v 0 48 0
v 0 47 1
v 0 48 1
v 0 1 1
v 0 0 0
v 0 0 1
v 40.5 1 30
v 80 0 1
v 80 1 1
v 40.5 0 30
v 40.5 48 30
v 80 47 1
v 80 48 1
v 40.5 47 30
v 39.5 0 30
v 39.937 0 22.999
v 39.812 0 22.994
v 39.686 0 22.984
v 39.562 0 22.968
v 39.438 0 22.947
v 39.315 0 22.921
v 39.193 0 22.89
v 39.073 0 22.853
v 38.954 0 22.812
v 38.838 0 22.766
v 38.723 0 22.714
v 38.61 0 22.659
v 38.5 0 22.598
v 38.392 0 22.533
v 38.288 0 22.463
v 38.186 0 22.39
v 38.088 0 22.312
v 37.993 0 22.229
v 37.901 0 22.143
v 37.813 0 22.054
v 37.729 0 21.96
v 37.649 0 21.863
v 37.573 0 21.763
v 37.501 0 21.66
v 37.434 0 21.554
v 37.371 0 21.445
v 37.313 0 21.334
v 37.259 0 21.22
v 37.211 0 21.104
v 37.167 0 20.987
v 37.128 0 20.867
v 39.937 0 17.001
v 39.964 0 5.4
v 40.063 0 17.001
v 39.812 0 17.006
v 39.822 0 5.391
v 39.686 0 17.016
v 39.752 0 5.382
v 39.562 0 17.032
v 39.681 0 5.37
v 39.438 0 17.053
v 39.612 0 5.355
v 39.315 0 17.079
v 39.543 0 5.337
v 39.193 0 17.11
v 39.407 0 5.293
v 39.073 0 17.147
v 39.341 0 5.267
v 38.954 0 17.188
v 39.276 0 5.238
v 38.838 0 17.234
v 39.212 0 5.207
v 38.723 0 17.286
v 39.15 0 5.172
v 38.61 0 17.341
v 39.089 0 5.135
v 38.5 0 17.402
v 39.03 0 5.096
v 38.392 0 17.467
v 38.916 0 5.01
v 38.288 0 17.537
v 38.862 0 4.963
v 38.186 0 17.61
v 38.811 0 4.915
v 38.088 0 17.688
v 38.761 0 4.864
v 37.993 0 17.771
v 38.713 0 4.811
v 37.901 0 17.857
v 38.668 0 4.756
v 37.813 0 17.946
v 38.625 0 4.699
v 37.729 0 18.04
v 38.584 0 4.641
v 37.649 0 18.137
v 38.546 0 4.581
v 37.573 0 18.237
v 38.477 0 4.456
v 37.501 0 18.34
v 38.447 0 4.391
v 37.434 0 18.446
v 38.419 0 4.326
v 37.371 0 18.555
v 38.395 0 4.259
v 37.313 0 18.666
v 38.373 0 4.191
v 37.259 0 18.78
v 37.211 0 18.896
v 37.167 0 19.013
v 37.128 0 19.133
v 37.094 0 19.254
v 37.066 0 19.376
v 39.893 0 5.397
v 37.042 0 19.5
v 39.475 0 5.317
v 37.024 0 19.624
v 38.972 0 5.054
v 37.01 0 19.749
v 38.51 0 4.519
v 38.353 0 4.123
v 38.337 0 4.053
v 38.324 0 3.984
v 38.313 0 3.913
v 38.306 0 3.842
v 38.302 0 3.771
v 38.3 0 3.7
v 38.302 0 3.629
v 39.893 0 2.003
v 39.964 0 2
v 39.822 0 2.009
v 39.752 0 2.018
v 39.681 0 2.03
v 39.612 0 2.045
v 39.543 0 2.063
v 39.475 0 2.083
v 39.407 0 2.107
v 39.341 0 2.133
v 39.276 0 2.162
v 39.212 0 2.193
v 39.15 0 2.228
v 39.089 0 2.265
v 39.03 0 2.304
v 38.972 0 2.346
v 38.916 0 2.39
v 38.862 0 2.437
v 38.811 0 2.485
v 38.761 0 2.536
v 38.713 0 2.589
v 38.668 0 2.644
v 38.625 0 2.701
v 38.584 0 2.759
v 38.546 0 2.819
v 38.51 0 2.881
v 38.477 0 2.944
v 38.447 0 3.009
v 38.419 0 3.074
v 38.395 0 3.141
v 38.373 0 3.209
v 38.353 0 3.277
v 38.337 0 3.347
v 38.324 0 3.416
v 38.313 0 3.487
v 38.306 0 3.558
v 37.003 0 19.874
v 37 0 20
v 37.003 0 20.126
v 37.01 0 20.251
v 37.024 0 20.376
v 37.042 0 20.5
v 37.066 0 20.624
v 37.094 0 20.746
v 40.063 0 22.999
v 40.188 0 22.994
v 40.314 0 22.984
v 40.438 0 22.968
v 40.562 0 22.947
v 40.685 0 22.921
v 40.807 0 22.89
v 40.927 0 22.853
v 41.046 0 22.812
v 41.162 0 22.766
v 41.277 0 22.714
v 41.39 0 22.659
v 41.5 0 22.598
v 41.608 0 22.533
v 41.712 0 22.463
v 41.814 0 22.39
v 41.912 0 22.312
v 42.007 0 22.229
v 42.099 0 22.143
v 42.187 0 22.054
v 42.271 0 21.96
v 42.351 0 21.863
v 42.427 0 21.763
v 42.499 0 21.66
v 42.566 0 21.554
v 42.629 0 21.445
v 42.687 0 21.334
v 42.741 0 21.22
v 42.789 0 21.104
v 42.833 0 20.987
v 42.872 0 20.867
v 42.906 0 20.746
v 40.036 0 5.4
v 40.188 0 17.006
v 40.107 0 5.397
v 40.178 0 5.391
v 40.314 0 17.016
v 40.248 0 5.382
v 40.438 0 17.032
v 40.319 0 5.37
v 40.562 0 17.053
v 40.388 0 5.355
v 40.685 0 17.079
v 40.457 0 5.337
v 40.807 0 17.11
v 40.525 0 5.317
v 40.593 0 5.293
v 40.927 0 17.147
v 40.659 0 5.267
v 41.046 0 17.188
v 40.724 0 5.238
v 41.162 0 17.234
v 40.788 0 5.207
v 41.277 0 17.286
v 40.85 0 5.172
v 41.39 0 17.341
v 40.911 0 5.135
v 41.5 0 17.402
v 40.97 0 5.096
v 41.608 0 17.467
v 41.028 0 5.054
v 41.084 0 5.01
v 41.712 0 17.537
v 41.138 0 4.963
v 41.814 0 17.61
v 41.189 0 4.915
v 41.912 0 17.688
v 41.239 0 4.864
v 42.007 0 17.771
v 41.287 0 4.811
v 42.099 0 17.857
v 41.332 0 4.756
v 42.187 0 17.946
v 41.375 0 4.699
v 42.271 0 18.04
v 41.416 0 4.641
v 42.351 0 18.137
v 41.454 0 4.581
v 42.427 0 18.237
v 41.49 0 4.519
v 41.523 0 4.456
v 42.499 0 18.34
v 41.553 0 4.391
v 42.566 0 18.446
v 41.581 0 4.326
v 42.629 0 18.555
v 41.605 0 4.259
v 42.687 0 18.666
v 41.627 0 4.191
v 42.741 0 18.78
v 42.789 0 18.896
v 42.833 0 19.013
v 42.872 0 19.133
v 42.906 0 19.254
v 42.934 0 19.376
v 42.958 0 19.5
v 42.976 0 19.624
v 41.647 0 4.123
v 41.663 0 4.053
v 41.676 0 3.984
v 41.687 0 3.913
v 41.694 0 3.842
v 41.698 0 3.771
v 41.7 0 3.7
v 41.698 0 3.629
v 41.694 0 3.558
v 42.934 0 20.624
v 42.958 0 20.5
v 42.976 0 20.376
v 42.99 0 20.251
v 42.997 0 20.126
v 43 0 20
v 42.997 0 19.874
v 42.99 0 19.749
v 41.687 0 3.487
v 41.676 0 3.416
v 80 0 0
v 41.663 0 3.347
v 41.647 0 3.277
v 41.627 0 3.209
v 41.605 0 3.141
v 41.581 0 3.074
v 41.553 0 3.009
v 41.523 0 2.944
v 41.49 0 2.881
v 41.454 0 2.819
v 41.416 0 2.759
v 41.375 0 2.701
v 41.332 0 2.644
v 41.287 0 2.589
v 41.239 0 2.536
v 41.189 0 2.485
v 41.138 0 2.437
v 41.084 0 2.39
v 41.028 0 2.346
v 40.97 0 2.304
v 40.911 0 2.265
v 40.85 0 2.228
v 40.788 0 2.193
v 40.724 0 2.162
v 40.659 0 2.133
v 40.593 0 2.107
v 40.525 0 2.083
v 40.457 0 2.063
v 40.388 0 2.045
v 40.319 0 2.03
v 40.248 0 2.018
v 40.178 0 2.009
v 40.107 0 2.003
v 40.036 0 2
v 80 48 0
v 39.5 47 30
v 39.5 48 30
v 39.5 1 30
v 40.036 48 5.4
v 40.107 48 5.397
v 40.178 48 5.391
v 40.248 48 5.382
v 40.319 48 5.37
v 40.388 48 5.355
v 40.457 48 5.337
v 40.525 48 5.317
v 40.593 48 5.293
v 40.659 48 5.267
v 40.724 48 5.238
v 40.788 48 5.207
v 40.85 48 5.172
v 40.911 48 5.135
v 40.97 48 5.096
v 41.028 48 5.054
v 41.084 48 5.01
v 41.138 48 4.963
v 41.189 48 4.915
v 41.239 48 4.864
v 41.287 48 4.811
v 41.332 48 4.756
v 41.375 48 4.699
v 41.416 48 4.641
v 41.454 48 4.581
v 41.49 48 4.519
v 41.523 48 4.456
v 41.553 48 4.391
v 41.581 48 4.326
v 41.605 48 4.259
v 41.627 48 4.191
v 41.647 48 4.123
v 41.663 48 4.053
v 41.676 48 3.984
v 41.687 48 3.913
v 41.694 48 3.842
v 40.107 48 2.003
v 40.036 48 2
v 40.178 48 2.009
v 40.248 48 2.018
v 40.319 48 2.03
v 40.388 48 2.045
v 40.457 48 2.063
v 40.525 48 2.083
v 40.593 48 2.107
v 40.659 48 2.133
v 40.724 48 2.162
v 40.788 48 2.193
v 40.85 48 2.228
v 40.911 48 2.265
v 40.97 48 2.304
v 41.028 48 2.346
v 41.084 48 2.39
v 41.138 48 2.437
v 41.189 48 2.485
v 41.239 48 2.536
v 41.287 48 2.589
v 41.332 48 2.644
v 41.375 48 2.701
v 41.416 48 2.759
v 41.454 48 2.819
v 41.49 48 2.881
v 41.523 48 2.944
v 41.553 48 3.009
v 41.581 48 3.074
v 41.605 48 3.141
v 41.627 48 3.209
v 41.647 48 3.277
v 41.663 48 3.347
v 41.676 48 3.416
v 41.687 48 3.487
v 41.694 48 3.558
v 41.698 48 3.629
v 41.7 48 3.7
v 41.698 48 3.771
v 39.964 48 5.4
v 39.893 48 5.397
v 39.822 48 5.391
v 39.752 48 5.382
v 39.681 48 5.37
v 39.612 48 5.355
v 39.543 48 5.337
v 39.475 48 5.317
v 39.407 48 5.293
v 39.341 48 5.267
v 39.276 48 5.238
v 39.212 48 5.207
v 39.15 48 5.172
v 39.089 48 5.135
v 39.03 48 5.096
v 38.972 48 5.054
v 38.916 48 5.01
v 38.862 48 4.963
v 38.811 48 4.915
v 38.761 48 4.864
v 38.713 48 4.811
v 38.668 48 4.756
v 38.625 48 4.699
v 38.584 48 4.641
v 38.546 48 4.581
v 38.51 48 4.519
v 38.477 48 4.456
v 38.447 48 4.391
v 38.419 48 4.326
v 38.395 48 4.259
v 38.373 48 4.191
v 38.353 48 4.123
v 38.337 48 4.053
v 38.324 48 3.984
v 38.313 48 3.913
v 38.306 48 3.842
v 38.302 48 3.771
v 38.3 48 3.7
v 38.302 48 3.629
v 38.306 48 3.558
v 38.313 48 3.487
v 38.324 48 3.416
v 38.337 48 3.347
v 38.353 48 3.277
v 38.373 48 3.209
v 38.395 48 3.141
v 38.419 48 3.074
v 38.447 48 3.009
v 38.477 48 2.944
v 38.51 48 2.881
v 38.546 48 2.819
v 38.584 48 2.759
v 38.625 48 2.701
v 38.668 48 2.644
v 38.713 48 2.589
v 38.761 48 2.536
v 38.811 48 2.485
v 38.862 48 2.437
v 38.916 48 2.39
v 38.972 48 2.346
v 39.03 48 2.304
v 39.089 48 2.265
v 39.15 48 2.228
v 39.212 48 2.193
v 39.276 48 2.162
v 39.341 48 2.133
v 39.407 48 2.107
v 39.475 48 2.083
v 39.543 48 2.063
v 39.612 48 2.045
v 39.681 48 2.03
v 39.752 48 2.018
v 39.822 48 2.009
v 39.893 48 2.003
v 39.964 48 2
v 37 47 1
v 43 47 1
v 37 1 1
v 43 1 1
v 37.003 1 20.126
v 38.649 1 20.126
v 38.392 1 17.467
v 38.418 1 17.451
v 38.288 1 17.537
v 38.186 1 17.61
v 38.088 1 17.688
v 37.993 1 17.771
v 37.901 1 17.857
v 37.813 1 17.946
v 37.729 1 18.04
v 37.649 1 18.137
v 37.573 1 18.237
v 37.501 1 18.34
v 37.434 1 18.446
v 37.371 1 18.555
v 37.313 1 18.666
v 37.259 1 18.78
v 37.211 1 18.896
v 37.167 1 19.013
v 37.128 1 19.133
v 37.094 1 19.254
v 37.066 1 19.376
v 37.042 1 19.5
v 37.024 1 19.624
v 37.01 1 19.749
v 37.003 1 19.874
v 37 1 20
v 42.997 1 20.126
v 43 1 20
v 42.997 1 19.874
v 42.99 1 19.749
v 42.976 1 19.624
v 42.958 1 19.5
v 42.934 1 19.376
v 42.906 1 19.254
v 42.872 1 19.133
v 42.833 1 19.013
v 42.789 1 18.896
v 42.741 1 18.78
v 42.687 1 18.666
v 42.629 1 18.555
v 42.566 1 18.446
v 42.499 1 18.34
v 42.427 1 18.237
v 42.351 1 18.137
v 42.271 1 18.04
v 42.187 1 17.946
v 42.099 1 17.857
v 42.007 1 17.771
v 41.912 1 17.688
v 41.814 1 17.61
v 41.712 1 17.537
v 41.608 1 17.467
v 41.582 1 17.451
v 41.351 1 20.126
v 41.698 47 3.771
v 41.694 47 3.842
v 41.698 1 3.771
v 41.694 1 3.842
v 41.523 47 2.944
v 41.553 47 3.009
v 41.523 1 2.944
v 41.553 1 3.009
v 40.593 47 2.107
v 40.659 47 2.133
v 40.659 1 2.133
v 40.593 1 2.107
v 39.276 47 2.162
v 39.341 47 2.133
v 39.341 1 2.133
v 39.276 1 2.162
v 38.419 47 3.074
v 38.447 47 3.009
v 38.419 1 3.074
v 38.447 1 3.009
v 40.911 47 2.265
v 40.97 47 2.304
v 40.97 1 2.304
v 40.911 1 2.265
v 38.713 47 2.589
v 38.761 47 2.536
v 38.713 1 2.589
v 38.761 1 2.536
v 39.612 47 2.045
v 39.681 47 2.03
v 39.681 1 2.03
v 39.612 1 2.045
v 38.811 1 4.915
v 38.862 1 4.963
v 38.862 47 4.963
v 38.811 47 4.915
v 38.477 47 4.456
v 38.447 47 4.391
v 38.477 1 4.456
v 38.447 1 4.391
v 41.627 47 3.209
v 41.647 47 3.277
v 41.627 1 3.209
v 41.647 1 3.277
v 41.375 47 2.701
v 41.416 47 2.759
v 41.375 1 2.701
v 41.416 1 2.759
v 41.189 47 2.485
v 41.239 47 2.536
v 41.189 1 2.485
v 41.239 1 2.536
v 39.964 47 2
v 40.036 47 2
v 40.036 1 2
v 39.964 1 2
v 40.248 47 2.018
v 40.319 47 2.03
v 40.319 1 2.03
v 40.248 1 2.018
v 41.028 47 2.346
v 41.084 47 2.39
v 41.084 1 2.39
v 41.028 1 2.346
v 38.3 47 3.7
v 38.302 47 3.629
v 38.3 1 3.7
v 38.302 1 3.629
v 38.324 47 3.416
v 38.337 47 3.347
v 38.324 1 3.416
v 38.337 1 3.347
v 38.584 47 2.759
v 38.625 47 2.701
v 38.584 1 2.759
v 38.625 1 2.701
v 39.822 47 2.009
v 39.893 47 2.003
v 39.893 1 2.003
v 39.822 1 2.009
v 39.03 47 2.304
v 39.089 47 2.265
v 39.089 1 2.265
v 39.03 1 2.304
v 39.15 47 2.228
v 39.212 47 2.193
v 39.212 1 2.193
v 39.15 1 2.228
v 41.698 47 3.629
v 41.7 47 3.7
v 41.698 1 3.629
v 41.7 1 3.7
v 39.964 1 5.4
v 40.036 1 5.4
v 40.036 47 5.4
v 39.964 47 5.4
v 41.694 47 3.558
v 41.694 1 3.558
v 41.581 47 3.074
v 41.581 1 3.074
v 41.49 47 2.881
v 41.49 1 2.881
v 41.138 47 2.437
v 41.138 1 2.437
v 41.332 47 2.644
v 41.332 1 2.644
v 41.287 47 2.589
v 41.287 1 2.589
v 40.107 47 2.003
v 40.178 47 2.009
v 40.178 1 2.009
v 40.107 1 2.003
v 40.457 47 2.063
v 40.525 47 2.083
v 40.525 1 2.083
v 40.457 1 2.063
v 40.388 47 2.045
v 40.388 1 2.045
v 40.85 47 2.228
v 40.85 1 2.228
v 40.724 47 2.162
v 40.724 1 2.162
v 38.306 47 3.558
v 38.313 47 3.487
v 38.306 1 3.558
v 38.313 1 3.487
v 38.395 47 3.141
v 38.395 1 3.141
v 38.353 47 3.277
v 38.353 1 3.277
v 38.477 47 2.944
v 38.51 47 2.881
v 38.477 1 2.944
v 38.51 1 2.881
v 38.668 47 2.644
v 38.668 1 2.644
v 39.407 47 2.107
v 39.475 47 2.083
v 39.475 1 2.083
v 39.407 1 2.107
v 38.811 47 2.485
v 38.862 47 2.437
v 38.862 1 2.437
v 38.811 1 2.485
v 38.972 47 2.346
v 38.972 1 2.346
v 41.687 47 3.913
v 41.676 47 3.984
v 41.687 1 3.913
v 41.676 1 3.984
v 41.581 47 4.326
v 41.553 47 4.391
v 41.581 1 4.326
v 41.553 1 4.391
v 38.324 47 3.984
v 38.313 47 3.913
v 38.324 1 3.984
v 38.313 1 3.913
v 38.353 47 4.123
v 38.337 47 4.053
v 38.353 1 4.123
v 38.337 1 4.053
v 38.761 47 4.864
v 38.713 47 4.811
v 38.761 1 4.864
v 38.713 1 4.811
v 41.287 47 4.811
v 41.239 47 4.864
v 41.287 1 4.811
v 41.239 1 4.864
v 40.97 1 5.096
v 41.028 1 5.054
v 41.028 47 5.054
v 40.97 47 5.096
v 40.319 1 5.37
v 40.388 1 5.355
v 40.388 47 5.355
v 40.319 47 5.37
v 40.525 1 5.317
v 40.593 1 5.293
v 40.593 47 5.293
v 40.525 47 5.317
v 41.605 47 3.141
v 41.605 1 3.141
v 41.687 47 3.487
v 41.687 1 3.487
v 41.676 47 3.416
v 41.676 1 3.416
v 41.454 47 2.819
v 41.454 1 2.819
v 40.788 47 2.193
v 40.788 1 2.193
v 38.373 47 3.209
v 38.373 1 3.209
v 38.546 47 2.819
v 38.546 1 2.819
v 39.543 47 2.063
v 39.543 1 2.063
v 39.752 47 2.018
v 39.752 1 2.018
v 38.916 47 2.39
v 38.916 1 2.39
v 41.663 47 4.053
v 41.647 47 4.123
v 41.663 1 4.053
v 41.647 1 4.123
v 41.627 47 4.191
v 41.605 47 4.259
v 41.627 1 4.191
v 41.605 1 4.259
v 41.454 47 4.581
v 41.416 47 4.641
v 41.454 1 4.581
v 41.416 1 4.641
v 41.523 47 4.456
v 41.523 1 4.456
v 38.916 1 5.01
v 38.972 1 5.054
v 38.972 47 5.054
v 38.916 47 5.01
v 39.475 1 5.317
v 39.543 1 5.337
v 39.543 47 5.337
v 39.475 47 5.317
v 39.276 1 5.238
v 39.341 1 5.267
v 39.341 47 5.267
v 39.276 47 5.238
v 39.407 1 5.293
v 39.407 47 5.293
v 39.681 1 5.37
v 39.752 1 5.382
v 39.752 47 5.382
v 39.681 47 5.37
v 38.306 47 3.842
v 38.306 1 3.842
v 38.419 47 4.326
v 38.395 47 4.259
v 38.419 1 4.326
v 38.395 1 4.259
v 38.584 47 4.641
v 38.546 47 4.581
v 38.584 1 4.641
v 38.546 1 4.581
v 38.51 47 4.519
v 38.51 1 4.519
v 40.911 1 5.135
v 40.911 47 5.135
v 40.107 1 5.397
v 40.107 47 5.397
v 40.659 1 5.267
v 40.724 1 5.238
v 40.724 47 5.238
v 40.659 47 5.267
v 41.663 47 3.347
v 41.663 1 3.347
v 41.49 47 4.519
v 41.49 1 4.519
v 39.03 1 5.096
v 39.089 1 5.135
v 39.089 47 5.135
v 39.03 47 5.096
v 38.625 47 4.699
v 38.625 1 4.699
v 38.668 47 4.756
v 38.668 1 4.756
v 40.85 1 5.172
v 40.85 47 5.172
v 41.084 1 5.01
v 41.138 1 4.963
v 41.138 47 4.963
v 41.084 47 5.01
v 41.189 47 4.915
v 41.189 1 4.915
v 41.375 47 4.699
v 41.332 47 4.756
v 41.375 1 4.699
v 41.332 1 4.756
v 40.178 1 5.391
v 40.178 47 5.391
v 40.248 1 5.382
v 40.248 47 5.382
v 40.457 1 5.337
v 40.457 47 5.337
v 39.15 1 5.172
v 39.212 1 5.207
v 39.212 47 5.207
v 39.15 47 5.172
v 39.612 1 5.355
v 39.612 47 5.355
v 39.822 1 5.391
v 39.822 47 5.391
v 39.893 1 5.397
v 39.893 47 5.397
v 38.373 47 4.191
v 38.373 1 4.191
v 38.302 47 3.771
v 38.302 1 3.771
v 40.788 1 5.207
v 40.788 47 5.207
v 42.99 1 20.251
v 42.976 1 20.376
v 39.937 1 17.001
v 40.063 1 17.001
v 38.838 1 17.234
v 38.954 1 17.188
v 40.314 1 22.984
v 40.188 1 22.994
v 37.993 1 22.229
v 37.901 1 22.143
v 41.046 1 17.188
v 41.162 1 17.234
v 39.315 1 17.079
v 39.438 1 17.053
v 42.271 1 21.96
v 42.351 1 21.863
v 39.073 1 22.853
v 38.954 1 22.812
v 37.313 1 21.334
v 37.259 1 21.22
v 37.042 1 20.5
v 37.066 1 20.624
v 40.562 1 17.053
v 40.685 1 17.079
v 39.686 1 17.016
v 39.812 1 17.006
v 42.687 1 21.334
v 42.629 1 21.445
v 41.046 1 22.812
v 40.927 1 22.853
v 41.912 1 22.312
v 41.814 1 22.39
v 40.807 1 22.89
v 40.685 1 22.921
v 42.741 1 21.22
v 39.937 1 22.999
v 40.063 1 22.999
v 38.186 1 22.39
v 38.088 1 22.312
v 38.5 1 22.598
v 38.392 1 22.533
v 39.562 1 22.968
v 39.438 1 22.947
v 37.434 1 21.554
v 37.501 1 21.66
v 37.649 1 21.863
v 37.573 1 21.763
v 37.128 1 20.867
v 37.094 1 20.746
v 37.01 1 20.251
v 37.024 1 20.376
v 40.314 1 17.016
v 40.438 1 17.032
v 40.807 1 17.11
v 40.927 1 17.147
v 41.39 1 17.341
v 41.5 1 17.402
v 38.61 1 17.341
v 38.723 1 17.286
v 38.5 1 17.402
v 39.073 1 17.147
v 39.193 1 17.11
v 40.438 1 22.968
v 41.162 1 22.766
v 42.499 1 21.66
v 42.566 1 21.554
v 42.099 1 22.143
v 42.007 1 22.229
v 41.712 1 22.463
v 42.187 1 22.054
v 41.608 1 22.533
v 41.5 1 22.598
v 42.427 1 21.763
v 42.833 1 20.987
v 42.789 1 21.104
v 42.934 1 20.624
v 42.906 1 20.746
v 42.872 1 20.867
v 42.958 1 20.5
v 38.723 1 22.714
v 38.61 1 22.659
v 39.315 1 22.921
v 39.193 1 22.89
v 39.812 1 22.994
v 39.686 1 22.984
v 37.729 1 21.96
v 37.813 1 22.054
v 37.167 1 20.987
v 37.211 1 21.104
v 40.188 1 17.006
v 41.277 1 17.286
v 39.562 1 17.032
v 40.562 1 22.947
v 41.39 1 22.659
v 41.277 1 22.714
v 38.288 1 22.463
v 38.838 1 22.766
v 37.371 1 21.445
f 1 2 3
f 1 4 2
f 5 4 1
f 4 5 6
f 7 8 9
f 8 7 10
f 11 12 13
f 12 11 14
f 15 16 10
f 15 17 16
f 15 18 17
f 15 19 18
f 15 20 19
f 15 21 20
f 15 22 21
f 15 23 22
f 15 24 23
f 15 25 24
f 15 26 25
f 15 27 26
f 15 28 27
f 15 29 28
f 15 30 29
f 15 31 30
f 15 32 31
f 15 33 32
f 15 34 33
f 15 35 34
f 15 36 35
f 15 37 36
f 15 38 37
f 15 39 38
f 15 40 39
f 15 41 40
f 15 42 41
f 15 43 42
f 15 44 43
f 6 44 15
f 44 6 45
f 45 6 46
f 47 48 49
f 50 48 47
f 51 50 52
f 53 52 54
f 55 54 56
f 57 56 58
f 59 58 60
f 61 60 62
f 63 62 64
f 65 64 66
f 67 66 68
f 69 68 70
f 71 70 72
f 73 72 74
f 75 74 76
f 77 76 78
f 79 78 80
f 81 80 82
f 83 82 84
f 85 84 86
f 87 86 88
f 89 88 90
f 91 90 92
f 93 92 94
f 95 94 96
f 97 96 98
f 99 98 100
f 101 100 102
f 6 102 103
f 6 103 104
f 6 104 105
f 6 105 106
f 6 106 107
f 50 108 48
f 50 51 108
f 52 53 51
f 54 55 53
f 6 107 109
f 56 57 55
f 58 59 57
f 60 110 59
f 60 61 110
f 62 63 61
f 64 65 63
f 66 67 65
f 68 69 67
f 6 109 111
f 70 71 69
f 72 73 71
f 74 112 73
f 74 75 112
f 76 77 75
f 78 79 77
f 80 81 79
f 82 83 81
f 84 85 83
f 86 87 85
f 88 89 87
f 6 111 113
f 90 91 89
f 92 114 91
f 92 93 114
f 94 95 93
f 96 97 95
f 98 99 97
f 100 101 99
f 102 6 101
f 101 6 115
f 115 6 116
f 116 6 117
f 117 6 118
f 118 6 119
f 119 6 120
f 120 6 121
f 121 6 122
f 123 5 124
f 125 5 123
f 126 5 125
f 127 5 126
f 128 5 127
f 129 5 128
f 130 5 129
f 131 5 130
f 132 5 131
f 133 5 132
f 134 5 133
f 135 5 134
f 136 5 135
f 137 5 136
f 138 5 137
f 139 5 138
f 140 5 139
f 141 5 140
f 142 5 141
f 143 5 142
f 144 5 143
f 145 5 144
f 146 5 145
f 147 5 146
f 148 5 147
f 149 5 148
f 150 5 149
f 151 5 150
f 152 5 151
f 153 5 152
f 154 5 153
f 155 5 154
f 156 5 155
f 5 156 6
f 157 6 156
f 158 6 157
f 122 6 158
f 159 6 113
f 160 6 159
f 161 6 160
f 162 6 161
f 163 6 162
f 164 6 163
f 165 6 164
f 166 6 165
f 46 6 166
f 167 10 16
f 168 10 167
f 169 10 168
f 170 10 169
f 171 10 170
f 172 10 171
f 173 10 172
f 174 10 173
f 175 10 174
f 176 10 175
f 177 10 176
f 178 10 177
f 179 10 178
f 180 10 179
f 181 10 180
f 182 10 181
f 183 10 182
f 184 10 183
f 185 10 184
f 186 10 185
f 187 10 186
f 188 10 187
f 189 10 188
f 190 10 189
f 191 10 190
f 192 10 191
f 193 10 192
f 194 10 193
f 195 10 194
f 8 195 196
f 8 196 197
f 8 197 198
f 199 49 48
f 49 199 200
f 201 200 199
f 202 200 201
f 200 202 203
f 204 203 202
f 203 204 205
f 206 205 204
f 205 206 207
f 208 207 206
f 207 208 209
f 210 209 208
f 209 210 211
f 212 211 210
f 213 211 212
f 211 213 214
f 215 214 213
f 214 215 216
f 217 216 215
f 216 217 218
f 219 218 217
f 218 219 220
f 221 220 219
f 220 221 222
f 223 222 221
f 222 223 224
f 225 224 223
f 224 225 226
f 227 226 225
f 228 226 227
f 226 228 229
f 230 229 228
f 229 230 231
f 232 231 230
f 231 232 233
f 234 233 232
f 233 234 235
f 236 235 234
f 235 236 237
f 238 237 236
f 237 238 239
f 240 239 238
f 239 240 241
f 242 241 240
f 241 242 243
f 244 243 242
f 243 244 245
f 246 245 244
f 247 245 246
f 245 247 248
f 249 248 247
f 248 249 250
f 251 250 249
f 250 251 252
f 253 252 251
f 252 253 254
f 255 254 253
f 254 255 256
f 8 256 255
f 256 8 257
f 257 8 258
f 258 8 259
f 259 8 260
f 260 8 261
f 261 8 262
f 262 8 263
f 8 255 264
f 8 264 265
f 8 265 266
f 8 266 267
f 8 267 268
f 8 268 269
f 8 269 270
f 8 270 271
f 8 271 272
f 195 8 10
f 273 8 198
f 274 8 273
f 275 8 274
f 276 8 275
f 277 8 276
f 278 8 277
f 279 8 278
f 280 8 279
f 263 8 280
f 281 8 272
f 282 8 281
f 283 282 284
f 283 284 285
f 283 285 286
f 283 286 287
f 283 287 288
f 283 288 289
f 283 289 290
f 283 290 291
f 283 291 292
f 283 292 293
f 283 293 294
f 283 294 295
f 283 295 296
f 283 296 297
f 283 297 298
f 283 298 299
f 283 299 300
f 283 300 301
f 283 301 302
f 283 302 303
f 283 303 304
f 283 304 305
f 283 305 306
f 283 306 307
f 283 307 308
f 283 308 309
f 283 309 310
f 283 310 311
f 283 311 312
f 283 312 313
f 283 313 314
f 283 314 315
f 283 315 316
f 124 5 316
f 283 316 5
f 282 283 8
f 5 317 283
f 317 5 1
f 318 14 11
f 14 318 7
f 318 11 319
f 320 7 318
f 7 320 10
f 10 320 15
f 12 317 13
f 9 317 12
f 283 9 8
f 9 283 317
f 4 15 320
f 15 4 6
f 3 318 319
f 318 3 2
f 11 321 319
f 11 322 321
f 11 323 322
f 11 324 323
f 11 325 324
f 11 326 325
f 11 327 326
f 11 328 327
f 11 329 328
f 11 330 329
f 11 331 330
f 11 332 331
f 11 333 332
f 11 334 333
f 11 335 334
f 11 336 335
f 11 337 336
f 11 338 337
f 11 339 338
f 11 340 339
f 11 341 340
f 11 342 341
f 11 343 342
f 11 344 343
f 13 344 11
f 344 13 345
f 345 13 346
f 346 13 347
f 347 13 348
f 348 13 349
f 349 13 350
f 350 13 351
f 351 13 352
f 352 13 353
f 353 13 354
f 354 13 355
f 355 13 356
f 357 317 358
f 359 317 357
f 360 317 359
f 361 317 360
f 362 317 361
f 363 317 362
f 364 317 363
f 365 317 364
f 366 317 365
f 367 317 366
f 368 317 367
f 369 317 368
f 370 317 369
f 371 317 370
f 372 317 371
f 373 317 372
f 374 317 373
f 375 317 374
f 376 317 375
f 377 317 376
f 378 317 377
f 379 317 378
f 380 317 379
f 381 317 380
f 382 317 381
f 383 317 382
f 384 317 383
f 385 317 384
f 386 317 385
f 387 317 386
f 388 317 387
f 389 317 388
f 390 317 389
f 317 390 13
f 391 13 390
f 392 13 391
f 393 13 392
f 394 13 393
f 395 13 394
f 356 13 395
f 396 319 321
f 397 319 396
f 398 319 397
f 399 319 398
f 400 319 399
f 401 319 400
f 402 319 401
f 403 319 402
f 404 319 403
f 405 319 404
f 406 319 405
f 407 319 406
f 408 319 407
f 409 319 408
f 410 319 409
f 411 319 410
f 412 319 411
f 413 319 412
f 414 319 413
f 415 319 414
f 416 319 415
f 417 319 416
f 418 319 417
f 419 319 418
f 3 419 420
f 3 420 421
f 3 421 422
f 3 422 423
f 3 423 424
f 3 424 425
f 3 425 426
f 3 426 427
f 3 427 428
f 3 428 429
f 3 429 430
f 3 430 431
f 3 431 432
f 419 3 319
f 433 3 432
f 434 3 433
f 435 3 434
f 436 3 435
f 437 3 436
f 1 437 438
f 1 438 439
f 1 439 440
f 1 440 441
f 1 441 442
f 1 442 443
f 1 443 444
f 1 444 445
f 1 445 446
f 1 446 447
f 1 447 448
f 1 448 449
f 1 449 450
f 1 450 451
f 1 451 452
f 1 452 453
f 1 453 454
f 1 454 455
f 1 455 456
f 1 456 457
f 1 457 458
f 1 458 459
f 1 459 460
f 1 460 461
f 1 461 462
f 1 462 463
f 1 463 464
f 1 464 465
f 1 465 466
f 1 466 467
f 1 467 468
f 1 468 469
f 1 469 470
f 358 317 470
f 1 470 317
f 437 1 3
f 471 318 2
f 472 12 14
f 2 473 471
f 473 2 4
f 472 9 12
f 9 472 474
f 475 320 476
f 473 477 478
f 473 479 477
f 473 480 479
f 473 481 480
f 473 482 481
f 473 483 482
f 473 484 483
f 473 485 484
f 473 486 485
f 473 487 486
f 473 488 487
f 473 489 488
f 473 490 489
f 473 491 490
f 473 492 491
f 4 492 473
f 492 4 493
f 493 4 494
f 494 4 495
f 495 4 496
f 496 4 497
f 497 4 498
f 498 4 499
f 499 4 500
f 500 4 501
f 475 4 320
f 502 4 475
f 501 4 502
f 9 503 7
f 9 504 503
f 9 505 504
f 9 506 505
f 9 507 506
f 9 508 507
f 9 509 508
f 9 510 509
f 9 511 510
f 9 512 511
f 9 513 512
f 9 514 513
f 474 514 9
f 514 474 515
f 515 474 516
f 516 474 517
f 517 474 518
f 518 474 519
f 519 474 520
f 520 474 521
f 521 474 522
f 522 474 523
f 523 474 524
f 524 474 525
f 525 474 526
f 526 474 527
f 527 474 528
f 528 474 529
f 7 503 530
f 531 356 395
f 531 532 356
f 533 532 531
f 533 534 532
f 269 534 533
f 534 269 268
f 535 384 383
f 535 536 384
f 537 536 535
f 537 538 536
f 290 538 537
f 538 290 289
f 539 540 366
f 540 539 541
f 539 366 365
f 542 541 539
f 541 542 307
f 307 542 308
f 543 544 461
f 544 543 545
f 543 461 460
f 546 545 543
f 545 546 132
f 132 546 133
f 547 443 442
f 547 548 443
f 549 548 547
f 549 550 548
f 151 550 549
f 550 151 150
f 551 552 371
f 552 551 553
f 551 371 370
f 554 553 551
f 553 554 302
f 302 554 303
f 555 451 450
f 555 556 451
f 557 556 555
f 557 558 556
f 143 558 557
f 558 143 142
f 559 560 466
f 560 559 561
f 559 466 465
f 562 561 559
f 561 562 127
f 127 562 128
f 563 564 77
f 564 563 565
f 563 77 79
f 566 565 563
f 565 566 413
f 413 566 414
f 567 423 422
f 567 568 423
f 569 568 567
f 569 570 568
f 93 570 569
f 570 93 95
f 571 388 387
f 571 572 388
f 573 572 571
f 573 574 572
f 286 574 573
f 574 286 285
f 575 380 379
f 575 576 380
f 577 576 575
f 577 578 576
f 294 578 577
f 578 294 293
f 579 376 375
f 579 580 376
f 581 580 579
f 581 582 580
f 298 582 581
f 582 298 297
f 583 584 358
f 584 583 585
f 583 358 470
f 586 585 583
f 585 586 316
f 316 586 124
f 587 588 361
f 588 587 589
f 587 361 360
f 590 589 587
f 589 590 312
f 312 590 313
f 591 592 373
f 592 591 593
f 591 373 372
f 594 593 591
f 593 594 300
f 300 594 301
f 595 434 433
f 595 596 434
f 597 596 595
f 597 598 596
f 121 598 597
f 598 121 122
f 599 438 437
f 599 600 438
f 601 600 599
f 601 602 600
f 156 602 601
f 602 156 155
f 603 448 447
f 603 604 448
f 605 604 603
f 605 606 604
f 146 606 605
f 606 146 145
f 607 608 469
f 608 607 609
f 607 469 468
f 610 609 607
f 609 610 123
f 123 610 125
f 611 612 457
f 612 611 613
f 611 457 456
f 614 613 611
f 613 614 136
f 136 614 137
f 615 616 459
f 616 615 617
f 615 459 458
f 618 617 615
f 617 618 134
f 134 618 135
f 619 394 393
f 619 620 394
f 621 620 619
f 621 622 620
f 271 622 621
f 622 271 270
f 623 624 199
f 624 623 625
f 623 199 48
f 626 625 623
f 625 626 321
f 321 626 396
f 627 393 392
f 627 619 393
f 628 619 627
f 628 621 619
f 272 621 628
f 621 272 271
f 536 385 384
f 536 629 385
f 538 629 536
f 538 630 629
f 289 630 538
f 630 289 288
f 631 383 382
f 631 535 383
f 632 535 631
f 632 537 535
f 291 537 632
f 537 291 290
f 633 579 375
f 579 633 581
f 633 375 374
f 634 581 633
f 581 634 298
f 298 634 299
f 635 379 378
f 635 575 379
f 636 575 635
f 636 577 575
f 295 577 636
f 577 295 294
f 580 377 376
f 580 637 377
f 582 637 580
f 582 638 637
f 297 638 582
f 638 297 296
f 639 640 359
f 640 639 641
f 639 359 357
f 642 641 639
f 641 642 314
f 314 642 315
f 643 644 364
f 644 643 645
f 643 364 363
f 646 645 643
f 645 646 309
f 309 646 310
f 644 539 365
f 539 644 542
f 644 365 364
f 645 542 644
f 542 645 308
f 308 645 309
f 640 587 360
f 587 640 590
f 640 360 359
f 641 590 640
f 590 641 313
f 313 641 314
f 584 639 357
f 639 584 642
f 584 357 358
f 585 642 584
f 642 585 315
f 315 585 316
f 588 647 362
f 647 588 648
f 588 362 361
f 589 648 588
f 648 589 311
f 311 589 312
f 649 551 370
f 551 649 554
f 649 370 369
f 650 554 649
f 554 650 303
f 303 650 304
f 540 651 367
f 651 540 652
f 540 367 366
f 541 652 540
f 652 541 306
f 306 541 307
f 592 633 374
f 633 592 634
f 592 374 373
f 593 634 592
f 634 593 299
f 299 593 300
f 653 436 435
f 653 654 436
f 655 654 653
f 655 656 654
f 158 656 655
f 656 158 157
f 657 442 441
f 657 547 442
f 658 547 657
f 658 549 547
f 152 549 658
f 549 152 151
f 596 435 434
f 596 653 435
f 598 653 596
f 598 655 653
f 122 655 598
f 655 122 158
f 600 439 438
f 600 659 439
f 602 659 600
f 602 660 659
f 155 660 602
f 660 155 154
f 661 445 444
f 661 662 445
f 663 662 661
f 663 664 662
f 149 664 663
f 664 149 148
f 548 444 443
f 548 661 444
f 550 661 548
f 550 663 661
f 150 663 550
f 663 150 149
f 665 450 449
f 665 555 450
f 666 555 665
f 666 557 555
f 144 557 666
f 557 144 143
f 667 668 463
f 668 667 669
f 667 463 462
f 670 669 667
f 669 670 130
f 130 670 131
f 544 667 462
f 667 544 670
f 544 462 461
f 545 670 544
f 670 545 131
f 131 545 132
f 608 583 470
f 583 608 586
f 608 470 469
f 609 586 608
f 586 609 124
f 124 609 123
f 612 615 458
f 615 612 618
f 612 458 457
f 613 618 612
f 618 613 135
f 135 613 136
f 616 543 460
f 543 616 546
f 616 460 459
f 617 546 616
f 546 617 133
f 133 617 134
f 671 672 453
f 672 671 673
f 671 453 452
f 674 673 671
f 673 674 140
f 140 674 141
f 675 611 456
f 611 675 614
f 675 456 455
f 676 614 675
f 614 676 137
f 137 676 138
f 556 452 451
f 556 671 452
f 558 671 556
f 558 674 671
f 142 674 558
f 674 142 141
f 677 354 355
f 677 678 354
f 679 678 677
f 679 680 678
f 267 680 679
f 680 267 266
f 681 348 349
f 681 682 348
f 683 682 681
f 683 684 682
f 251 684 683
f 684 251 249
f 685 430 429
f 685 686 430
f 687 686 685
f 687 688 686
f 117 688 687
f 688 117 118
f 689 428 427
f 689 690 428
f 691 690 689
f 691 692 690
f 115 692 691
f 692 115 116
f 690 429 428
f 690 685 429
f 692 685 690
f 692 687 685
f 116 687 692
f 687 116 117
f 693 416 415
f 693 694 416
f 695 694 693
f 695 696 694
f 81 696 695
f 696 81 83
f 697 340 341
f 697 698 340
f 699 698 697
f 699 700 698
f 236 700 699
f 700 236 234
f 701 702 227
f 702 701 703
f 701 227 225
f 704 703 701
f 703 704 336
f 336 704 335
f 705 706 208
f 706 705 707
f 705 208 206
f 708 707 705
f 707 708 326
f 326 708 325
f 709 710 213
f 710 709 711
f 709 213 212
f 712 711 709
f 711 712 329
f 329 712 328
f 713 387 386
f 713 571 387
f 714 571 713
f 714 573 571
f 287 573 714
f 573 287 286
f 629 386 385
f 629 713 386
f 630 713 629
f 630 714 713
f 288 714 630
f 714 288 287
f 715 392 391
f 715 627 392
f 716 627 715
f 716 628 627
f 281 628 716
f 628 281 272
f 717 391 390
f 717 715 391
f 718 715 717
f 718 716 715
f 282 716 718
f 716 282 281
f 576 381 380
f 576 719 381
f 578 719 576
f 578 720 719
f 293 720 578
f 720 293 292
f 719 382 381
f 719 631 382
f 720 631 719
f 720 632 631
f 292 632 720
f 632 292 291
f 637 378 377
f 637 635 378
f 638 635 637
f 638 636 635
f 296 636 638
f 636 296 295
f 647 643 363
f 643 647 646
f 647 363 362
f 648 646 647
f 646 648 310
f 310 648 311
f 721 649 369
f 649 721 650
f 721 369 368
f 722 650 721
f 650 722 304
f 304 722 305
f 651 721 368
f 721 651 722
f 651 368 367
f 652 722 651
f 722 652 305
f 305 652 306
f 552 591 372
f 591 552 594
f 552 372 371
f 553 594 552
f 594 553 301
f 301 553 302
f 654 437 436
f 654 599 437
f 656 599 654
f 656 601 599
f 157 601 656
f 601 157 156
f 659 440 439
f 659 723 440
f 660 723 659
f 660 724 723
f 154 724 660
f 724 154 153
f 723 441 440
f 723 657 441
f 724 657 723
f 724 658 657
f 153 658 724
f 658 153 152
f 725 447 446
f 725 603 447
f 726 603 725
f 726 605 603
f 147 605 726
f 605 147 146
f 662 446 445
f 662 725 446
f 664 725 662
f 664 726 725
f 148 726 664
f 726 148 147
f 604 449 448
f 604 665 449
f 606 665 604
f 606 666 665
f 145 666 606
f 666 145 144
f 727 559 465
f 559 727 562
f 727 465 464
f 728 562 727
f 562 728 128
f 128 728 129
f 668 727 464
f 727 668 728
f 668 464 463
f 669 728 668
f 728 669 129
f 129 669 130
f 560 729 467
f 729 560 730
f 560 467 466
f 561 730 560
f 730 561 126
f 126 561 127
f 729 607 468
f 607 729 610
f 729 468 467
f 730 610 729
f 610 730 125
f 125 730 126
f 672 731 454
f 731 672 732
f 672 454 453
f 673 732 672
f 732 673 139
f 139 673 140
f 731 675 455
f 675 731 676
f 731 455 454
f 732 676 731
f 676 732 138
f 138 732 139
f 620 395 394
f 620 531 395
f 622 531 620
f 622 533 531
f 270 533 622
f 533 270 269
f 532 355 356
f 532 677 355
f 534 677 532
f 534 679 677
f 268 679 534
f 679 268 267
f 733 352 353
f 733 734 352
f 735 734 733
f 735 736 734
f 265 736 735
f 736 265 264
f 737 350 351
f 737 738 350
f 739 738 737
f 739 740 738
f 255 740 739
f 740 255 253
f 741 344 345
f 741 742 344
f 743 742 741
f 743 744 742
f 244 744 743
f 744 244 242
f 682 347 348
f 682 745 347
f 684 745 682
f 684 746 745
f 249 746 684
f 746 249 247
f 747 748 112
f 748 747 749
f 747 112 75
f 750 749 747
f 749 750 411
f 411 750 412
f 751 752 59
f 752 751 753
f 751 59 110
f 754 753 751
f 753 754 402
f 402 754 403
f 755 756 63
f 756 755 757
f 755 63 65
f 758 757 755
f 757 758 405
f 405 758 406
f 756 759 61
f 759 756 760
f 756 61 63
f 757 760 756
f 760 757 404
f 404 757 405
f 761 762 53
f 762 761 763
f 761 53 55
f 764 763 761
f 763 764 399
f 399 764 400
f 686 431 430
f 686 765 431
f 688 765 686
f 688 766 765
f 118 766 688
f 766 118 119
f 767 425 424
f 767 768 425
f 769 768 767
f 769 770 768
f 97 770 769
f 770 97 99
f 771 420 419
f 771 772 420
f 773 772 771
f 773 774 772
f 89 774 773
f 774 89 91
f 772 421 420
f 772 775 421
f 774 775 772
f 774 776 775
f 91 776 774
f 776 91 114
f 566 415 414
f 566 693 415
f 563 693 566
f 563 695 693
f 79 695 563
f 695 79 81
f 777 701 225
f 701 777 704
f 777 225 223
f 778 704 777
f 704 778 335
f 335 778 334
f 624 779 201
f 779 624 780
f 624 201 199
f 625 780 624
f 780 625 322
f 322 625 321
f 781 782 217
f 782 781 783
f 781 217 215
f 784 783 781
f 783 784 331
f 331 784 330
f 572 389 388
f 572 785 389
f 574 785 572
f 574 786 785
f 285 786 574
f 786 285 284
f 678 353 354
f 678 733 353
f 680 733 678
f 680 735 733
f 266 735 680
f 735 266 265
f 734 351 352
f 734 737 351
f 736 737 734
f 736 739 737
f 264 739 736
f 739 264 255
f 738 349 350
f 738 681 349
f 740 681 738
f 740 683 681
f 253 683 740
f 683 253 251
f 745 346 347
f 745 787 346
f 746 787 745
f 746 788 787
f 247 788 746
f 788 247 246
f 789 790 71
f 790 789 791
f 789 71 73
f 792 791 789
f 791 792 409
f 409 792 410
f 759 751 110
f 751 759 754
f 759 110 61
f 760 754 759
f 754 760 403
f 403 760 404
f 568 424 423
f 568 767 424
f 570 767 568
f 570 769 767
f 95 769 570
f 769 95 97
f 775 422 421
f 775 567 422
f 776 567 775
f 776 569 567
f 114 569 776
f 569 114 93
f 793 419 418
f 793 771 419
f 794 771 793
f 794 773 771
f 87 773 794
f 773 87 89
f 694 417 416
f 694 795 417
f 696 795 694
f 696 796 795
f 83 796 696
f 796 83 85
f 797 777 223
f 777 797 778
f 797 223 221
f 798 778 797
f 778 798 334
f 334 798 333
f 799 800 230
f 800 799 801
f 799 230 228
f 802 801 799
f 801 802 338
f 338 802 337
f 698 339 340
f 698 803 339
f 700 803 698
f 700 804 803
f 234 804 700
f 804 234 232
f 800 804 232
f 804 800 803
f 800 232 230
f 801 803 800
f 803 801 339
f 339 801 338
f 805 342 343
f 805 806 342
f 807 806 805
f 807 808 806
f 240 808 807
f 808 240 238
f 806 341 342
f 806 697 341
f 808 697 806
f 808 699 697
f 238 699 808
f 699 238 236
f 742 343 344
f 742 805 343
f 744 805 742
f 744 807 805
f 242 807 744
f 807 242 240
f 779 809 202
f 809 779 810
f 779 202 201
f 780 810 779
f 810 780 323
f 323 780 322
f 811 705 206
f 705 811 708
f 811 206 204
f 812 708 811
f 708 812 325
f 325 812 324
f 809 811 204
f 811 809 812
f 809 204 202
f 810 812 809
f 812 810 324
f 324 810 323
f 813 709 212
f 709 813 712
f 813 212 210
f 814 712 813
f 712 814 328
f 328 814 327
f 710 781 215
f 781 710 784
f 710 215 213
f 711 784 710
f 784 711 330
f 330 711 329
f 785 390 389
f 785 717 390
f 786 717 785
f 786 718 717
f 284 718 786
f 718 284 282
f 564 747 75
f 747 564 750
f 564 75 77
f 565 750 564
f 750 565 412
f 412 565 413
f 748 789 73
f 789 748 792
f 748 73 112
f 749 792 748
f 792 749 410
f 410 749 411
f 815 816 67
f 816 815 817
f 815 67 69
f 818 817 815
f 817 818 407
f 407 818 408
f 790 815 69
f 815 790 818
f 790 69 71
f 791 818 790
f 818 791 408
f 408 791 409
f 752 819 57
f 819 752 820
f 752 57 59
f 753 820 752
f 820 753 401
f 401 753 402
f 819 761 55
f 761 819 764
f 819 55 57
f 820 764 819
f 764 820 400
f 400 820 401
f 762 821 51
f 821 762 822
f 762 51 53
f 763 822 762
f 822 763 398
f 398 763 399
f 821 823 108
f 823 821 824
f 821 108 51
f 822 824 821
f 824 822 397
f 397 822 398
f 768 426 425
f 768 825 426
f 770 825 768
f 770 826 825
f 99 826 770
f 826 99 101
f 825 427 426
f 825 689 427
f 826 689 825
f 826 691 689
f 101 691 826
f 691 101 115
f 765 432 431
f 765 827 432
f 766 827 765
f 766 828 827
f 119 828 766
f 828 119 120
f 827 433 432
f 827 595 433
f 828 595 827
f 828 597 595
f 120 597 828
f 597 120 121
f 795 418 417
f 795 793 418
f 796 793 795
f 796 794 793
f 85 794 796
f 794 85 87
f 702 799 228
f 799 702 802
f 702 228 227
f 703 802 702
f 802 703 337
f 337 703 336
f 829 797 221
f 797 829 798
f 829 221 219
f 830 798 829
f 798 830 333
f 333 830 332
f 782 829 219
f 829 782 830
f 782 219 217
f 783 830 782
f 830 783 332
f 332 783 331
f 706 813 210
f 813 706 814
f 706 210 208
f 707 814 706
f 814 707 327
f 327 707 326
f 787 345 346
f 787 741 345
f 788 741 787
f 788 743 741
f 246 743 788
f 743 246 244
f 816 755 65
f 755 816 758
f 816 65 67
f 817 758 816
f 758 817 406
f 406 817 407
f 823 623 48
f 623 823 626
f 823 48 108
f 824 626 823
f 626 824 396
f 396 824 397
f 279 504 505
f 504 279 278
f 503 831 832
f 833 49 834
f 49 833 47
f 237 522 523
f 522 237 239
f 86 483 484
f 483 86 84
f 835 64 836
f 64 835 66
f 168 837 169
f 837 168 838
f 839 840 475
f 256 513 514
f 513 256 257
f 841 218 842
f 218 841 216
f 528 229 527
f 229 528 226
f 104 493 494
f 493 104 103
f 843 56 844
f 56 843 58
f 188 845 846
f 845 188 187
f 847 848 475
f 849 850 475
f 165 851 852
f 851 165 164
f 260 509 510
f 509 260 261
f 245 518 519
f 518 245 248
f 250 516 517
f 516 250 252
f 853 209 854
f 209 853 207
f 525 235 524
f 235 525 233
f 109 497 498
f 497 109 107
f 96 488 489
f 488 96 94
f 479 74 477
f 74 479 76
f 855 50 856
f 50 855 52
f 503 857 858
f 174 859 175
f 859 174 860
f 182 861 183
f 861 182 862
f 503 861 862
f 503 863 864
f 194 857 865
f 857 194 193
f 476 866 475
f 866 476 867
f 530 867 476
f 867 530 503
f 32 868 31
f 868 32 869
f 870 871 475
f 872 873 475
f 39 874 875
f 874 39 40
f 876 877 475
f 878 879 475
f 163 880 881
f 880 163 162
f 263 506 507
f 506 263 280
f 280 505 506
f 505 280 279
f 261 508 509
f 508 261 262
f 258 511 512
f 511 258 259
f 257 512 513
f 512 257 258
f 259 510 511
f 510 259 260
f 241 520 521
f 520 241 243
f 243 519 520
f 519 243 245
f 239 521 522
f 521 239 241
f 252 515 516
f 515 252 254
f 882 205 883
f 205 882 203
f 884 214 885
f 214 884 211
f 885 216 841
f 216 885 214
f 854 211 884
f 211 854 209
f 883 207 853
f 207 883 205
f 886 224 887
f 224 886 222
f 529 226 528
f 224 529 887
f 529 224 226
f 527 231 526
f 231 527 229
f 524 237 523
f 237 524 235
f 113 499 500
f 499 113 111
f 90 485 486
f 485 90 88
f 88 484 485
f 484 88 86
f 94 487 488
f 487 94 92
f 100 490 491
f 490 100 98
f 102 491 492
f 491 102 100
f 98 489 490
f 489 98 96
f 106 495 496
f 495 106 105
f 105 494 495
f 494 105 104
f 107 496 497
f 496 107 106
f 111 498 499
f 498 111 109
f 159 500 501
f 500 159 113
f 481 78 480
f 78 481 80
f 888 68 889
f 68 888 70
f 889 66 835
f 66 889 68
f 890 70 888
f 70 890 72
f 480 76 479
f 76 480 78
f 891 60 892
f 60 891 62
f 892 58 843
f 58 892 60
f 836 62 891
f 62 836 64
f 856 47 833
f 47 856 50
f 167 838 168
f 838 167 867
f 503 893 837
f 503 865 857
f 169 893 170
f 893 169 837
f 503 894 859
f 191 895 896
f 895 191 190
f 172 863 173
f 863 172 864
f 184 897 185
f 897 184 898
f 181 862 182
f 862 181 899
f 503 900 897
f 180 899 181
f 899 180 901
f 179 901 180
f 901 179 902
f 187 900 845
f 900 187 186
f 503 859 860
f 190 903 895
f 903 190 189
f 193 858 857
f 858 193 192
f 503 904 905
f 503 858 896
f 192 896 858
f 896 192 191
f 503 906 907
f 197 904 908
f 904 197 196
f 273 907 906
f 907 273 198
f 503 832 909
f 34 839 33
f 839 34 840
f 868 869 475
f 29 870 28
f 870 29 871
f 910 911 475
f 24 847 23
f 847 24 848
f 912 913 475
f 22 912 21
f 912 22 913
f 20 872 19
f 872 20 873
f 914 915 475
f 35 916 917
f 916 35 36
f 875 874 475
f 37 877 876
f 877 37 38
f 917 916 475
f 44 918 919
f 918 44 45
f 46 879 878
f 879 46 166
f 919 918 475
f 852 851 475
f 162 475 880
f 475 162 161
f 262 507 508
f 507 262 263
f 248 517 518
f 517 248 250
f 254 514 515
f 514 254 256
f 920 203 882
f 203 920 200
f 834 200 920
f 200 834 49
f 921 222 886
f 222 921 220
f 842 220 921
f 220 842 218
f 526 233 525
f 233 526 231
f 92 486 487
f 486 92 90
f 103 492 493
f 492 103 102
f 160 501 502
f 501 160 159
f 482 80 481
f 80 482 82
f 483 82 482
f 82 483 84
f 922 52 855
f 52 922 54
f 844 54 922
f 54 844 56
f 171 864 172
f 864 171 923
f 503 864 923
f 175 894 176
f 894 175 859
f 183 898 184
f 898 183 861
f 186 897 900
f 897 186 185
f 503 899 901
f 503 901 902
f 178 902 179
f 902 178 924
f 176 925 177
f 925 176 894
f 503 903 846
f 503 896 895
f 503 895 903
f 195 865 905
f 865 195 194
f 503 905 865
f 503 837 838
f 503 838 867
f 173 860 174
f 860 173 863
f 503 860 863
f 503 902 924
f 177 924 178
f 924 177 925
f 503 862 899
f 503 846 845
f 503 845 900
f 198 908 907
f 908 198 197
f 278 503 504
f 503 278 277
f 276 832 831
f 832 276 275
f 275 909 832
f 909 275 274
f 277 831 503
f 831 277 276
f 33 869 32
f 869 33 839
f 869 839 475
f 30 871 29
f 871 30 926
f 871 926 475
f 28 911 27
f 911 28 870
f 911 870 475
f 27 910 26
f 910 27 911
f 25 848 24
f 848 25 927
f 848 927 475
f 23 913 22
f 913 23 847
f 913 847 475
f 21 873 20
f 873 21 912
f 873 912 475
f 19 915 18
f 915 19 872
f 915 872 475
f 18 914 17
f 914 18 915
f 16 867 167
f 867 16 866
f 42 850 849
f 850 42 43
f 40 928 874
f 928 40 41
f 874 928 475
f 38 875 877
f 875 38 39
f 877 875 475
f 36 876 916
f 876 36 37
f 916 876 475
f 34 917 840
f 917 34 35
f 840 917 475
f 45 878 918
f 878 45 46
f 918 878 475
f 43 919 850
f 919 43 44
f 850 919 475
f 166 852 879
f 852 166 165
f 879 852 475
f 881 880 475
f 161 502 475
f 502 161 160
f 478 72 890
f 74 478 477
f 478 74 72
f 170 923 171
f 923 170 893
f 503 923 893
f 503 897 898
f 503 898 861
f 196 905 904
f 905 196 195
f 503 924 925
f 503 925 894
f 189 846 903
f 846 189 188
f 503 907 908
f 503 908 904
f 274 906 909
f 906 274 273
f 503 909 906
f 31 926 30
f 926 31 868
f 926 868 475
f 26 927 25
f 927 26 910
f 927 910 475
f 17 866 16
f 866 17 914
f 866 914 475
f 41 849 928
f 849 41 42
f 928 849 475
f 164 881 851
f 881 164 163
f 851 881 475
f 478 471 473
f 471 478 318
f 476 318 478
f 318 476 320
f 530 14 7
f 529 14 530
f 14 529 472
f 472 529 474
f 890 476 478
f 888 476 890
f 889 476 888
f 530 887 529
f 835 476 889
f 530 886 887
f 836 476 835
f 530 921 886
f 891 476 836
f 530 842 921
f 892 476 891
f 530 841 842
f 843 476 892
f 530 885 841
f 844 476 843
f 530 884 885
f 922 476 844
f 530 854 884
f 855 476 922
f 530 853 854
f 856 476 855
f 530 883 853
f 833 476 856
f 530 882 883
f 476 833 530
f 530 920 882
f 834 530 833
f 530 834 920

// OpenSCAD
$fn=150;
difference (){
        hull() {
        cube ([80,48,1]);
        translate ([80/2-1/2,0,0]) cube ([1,48,30]);
    } 
    translate ([0,1,1]) cube ([80,46,30]);
    translate ([80/2,0,2+3.4/2]) rotate ([-90]) cylinder (48,3.4/2,3.4/2);
    translate ([80/2,0,20]) rotate ([-90]) cylinder (1,6/2,6/2);
}
difference (){
    hull() {
        translate ([80/2-1/2,0,0]) cube ([1,48,30]);
        translate ([80/2-6/2,0,0]) cube ([6,48,1]);
    }
    translate ([80/2,0,2+3.4/2]) rotate ([-90]) cylinder (48,3.4/2,3.4/2);
    translate ([80/2,0,20]) rotate ([-90]) cylinder (1,6/2,6/2);
}
